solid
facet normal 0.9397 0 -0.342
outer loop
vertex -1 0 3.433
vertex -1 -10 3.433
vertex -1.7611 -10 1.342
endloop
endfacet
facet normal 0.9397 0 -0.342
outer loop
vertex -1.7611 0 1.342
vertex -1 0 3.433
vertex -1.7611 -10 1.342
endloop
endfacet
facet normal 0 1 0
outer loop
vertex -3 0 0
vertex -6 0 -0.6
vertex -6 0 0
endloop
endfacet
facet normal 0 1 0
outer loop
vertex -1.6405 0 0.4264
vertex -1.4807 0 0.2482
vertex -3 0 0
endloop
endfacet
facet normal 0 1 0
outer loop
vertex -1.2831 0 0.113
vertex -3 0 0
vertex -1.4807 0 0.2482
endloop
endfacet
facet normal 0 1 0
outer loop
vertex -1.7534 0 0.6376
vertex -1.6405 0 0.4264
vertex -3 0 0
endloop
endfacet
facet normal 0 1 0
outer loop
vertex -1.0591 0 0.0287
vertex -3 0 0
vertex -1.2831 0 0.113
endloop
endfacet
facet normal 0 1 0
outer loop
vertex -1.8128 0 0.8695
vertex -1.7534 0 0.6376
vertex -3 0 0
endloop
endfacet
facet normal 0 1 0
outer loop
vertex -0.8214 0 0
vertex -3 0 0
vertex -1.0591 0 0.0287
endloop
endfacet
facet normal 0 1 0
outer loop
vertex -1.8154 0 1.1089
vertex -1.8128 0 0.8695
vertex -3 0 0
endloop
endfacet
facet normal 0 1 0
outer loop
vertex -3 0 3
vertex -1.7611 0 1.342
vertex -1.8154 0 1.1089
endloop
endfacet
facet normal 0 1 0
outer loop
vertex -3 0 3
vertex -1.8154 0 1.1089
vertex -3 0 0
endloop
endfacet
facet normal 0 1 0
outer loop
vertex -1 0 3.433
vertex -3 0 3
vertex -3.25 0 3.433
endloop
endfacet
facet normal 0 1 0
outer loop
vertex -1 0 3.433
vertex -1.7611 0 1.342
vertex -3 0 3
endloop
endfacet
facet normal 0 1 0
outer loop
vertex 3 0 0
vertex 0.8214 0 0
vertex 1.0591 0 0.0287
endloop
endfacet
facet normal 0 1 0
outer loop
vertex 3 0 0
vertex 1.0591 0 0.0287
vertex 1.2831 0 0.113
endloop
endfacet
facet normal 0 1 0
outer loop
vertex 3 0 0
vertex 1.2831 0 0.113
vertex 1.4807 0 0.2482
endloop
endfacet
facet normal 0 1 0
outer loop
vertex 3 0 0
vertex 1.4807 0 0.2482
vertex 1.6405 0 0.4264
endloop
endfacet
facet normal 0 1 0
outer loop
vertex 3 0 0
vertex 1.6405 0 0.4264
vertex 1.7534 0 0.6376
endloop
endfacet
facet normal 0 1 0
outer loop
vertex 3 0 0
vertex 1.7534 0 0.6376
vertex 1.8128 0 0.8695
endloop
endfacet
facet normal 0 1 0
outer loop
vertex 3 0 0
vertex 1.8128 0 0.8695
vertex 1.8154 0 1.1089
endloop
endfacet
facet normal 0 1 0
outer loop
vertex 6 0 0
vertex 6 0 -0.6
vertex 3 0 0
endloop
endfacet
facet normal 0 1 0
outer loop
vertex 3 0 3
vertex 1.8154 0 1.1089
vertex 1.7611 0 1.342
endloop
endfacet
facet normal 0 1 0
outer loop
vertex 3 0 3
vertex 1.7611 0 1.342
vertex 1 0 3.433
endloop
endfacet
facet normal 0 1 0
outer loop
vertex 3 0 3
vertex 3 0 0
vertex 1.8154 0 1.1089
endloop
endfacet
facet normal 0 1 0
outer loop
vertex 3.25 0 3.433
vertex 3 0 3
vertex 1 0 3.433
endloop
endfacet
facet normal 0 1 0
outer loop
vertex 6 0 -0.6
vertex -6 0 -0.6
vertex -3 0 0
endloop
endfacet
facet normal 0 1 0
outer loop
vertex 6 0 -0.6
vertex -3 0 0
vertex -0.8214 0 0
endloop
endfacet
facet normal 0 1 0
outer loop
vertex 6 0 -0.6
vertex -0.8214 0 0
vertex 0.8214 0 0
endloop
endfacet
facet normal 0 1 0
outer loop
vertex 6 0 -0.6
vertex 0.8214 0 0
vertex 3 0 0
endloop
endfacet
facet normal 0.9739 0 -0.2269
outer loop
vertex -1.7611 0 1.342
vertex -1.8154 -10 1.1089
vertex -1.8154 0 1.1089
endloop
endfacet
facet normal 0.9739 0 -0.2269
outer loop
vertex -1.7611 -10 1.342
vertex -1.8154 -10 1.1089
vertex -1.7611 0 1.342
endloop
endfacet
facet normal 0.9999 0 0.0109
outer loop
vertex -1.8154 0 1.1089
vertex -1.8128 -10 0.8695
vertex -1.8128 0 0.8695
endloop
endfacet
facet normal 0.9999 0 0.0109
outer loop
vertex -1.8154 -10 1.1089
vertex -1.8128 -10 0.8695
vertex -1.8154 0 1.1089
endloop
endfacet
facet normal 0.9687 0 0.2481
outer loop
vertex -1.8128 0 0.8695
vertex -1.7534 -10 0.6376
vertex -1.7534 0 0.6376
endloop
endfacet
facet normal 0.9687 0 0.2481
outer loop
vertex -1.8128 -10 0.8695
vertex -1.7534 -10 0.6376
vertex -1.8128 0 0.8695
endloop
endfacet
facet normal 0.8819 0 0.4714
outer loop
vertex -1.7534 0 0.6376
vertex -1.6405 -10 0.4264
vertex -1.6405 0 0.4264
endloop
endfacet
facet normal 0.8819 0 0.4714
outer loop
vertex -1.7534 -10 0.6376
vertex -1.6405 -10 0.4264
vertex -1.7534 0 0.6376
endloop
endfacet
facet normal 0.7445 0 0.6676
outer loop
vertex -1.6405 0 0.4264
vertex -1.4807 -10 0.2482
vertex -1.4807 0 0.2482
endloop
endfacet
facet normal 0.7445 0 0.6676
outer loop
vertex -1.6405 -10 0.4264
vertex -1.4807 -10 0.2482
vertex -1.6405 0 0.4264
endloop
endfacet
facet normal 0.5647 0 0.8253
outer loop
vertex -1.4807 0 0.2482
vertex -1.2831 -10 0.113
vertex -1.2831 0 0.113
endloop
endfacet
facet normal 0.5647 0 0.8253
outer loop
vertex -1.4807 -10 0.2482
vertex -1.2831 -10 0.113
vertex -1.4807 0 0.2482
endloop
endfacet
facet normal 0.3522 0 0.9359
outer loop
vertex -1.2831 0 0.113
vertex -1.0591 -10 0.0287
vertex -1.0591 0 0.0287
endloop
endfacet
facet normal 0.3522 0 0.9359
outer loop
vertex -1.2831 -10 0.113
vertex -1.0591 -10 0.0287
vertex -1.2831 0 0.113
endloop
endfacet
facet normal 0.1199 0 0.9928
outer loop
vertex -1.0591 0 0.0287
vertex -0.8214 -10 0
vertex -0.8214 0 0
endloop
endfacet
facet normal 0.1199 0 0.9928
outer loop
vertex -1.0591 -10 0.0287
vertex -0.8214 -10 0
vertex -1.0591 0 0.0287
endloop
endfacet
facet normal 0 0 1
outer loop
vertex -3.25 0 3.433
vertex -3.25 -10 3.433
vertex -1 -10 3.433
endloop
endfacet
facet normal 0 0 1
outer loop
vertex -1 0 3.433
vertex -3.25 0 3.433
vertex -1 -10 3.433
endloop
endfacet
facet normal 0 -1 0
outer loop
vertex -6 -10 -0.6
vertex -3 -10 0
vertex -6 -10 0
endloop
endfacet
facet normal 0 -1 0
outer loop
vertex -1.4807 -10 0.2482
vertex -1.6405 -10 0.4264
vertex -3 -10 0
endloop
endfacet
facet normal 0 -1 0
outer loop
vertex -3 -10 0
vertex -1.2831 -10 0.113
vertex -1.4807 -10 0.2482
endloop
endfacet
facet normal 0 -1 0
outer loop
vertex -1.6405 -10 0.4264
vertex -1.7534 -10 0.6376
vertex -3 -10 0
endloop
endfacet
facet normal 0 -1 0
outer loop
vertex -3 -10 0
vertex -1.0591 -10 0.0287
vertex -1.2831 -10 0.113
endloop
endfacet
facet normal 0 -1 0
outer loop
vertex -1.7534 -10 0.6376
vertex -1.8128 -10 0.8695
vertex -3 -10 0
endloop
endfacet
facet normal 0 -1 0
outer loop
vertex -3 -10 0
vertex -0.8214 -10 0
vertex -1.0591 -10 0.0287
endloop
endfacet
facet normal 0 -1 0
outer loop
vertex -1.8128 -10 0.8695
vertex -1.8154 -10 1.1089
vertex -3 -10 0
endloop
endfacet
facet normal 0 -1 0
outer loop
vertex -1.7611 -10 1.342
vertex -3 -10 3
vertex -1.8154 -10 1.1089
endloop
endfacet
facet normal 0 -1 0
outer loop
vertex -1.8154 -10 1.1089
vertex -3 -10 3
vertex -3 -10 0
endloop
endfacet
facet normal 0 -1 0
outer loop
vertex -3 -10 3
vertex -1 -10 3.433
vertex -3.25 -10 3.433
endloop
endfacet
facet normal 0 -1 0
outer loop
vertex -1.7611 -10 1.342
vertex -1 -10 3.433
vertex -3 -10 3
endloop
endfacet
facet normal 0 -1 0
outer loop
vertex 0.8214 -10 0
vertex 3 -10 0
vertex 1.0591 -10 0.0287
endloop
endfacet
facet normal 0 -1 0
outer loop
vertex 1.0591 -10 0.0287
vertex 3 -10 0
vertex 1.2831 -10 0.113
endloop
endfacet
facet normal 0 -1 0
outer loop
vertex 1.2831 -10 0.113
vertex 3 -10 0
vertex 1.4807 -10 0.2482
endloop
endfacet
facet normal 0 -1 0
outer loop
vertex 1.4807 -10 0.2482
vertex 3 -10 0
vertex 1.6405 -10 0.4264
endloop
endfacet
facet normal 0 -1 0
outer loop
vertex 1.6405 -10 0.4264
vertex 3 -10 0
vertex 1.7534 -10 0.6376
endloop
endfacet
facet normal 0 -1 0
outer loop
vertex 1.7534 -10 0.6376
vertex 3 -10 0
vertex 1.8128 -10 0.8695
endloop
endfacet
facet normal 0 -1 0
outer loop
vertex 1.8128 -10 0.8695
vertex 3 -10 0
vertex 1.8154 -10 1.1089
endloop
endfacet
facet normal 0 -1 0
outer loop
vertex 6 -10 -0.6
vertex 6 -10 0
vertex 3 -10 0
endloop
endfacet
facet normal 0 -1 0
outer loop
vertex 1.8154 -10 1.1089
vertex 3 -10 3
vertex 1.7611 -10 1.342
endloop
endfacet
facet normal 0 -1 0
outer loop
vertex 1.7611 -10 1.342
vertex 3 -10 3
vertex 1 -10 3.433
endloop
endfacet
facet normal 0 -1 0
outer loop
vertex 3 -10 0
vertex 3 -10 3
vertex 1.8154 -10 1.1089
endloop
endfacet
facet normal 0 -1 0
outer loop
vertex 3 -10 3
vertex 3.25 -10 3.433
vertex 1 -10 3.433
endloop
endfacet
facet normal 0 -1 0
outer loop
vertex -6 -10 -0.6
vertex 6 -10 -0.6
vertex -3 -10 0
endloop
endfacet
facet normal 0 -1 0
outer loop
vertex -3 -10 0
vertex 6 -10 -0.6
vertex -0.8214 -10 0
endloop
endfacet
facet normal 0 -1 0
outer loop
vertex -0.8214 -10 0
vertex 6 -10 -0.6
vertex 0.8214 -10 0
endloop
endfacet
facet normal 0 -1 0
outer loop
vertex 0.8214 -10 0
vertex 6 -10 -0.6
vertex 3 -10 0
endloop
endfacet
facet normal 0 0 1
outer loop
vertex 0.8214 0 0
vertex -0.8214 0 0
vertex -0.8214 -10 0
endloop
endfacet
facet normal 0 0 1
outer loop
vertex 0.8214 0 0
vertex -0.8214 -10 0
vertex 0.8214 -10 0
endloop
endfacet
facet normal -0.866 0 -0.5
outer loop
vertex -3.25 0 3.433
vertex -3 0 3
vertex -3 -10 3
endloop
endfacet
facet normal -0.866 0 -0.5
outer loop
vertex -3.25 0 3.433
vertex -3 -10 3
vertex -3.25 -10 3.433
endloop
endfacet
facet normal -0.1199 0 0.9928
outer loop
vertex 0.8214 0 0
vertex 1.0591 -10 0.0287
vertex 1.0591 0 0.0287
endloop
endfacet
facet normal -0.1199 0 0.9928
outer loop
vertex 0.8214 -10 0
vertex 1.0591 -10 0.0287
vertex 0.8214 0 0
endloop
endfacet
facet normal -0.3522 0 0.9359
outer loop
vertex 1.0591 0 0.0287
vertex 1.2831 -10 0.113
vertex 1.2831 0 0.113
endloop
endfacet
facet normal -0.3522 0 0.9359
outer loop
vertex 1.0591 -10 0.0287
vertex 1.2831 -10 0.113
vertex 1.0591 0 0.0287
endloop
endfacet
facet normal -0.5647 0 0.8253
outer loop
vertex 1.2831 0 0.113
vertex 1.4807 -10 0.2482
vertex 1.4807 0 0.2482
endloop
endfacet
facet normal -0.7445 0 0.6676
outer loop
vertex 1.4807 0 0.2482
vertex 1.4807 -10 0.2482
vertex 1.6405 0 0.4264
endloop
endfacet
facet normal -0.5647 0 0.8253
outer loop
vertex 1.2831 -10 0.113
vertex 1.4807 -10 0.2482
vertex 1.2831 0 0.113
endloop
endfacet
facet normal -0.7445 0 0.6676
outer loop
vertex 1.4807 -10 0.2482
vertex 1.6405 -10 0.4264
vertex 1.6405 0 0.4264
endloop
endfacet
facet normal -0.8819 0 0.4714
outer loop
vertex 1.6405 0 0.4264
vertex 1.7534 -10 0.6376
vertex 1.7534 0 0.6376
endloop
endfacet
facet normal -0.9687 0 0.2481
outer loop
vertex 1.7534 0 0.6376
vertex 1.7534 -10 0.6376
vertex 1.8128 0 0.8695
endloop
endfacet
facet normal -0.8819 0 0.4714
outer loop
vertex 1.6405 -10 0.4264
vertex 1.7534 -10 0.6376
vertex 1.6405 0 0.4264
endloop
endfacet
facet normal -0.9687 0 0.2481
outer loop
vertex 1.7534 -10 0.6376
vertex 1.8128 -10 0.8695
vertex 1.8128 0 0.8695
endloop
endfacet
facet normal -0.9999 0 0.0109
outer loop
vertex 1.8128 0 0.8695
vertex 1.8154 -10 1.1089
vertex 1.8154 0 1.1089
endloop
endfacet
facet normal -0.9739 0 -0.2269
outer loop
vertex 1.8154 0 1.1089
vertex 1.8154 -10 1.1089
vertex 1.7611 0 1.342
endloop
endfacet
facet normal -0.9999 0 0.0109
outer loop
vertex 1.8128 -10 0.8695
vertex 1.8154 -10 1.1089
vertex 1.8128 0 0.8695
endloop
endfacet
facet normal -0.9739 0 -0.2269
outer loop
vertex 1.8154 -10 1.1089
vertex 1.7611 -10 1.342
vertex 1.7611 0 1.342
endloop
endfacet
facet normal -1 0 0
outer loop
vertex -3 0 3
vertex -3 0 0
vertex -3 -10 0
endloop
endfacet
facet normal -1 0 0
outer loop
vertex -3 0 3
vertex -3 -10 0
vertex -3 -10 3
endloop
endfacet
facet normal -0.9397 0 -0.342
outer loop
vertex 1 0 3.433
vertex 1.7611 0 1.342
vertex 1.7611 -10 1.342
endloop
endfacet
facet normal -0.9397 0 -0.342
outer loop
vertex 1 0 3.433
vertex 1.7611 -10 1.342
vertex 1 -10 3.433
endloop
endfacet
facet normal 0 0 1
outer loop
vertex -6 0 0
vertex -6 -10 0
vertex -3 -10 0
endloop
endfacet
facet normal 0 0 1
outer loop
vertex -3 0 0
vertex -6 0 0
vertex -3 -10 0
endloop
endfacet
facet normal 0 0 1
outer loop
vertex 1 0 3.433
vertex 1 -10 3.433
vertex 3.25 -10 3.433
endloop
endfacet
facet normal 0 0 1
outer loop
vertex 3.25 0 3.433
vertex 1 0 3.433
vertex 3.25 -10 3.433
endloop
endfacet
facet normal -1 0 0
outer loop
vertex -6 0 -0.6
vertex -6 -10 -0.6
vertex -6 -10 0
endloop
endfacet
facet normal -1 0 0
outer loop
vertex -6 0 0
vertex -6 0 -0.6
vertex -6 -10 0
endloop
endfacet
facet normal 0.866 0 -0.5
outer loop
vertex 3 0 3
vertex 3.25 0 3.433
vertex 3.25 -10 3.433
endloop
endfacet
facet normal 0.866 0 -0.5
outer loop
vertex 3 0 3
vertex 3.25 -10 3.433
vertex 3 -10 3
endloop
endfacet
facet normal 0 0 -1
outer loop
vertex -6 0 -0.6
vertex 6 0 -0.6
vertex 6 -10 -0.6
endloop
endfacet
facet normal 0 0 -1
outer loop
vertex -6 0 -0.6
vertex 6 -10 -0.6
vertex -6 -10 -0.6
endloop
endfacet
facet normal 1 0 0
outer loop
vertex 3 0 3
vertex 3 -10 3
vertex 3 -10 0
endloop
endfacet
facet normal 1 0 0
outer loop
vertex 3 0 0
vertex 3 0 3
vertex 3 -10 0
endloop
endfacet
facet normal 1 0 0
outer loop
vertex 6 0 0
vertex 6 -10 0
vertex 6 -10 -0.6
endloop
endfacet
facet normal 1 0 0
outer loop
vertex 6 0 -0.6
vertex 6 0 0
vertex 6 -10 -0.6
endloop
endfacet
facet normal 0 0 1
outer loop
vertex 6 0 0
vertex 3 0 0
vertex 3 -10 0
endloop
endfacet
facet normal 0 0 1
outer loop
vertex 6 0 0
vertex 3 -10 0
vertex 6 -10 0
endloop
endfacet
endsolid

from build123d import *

# Parameters (mm, degrees)
PAD_DEPTH = 10
FILLET_R  = 1


with BuildPart() as part:
    # Sketch → Pad (new body)
    with BuildSketch(Plane.XZ):
        Polygon((-3, 0), (-3, 3), (-3.25, 3.433013), (-1, 3.433013), (-2.249514, 0), (2.249514, 0), (1, 3.433013), (3.25, 3.433013), (3, 3), (3, 0), (6, 0), (6, -0.6), (-6, -0.6), (-6, 0), align=None)
    extrude(amount=PAD_DEPTH)

    # Fillet
    fillet_edges = [part.edges().sort_by_distance(p)[0] for p in [
        (-2.249514, -5, 0),
        (2.249514, -5, 0),
    ]]
    fillet(fillet_edges, radius=FILLET_R)


solid = part.part
